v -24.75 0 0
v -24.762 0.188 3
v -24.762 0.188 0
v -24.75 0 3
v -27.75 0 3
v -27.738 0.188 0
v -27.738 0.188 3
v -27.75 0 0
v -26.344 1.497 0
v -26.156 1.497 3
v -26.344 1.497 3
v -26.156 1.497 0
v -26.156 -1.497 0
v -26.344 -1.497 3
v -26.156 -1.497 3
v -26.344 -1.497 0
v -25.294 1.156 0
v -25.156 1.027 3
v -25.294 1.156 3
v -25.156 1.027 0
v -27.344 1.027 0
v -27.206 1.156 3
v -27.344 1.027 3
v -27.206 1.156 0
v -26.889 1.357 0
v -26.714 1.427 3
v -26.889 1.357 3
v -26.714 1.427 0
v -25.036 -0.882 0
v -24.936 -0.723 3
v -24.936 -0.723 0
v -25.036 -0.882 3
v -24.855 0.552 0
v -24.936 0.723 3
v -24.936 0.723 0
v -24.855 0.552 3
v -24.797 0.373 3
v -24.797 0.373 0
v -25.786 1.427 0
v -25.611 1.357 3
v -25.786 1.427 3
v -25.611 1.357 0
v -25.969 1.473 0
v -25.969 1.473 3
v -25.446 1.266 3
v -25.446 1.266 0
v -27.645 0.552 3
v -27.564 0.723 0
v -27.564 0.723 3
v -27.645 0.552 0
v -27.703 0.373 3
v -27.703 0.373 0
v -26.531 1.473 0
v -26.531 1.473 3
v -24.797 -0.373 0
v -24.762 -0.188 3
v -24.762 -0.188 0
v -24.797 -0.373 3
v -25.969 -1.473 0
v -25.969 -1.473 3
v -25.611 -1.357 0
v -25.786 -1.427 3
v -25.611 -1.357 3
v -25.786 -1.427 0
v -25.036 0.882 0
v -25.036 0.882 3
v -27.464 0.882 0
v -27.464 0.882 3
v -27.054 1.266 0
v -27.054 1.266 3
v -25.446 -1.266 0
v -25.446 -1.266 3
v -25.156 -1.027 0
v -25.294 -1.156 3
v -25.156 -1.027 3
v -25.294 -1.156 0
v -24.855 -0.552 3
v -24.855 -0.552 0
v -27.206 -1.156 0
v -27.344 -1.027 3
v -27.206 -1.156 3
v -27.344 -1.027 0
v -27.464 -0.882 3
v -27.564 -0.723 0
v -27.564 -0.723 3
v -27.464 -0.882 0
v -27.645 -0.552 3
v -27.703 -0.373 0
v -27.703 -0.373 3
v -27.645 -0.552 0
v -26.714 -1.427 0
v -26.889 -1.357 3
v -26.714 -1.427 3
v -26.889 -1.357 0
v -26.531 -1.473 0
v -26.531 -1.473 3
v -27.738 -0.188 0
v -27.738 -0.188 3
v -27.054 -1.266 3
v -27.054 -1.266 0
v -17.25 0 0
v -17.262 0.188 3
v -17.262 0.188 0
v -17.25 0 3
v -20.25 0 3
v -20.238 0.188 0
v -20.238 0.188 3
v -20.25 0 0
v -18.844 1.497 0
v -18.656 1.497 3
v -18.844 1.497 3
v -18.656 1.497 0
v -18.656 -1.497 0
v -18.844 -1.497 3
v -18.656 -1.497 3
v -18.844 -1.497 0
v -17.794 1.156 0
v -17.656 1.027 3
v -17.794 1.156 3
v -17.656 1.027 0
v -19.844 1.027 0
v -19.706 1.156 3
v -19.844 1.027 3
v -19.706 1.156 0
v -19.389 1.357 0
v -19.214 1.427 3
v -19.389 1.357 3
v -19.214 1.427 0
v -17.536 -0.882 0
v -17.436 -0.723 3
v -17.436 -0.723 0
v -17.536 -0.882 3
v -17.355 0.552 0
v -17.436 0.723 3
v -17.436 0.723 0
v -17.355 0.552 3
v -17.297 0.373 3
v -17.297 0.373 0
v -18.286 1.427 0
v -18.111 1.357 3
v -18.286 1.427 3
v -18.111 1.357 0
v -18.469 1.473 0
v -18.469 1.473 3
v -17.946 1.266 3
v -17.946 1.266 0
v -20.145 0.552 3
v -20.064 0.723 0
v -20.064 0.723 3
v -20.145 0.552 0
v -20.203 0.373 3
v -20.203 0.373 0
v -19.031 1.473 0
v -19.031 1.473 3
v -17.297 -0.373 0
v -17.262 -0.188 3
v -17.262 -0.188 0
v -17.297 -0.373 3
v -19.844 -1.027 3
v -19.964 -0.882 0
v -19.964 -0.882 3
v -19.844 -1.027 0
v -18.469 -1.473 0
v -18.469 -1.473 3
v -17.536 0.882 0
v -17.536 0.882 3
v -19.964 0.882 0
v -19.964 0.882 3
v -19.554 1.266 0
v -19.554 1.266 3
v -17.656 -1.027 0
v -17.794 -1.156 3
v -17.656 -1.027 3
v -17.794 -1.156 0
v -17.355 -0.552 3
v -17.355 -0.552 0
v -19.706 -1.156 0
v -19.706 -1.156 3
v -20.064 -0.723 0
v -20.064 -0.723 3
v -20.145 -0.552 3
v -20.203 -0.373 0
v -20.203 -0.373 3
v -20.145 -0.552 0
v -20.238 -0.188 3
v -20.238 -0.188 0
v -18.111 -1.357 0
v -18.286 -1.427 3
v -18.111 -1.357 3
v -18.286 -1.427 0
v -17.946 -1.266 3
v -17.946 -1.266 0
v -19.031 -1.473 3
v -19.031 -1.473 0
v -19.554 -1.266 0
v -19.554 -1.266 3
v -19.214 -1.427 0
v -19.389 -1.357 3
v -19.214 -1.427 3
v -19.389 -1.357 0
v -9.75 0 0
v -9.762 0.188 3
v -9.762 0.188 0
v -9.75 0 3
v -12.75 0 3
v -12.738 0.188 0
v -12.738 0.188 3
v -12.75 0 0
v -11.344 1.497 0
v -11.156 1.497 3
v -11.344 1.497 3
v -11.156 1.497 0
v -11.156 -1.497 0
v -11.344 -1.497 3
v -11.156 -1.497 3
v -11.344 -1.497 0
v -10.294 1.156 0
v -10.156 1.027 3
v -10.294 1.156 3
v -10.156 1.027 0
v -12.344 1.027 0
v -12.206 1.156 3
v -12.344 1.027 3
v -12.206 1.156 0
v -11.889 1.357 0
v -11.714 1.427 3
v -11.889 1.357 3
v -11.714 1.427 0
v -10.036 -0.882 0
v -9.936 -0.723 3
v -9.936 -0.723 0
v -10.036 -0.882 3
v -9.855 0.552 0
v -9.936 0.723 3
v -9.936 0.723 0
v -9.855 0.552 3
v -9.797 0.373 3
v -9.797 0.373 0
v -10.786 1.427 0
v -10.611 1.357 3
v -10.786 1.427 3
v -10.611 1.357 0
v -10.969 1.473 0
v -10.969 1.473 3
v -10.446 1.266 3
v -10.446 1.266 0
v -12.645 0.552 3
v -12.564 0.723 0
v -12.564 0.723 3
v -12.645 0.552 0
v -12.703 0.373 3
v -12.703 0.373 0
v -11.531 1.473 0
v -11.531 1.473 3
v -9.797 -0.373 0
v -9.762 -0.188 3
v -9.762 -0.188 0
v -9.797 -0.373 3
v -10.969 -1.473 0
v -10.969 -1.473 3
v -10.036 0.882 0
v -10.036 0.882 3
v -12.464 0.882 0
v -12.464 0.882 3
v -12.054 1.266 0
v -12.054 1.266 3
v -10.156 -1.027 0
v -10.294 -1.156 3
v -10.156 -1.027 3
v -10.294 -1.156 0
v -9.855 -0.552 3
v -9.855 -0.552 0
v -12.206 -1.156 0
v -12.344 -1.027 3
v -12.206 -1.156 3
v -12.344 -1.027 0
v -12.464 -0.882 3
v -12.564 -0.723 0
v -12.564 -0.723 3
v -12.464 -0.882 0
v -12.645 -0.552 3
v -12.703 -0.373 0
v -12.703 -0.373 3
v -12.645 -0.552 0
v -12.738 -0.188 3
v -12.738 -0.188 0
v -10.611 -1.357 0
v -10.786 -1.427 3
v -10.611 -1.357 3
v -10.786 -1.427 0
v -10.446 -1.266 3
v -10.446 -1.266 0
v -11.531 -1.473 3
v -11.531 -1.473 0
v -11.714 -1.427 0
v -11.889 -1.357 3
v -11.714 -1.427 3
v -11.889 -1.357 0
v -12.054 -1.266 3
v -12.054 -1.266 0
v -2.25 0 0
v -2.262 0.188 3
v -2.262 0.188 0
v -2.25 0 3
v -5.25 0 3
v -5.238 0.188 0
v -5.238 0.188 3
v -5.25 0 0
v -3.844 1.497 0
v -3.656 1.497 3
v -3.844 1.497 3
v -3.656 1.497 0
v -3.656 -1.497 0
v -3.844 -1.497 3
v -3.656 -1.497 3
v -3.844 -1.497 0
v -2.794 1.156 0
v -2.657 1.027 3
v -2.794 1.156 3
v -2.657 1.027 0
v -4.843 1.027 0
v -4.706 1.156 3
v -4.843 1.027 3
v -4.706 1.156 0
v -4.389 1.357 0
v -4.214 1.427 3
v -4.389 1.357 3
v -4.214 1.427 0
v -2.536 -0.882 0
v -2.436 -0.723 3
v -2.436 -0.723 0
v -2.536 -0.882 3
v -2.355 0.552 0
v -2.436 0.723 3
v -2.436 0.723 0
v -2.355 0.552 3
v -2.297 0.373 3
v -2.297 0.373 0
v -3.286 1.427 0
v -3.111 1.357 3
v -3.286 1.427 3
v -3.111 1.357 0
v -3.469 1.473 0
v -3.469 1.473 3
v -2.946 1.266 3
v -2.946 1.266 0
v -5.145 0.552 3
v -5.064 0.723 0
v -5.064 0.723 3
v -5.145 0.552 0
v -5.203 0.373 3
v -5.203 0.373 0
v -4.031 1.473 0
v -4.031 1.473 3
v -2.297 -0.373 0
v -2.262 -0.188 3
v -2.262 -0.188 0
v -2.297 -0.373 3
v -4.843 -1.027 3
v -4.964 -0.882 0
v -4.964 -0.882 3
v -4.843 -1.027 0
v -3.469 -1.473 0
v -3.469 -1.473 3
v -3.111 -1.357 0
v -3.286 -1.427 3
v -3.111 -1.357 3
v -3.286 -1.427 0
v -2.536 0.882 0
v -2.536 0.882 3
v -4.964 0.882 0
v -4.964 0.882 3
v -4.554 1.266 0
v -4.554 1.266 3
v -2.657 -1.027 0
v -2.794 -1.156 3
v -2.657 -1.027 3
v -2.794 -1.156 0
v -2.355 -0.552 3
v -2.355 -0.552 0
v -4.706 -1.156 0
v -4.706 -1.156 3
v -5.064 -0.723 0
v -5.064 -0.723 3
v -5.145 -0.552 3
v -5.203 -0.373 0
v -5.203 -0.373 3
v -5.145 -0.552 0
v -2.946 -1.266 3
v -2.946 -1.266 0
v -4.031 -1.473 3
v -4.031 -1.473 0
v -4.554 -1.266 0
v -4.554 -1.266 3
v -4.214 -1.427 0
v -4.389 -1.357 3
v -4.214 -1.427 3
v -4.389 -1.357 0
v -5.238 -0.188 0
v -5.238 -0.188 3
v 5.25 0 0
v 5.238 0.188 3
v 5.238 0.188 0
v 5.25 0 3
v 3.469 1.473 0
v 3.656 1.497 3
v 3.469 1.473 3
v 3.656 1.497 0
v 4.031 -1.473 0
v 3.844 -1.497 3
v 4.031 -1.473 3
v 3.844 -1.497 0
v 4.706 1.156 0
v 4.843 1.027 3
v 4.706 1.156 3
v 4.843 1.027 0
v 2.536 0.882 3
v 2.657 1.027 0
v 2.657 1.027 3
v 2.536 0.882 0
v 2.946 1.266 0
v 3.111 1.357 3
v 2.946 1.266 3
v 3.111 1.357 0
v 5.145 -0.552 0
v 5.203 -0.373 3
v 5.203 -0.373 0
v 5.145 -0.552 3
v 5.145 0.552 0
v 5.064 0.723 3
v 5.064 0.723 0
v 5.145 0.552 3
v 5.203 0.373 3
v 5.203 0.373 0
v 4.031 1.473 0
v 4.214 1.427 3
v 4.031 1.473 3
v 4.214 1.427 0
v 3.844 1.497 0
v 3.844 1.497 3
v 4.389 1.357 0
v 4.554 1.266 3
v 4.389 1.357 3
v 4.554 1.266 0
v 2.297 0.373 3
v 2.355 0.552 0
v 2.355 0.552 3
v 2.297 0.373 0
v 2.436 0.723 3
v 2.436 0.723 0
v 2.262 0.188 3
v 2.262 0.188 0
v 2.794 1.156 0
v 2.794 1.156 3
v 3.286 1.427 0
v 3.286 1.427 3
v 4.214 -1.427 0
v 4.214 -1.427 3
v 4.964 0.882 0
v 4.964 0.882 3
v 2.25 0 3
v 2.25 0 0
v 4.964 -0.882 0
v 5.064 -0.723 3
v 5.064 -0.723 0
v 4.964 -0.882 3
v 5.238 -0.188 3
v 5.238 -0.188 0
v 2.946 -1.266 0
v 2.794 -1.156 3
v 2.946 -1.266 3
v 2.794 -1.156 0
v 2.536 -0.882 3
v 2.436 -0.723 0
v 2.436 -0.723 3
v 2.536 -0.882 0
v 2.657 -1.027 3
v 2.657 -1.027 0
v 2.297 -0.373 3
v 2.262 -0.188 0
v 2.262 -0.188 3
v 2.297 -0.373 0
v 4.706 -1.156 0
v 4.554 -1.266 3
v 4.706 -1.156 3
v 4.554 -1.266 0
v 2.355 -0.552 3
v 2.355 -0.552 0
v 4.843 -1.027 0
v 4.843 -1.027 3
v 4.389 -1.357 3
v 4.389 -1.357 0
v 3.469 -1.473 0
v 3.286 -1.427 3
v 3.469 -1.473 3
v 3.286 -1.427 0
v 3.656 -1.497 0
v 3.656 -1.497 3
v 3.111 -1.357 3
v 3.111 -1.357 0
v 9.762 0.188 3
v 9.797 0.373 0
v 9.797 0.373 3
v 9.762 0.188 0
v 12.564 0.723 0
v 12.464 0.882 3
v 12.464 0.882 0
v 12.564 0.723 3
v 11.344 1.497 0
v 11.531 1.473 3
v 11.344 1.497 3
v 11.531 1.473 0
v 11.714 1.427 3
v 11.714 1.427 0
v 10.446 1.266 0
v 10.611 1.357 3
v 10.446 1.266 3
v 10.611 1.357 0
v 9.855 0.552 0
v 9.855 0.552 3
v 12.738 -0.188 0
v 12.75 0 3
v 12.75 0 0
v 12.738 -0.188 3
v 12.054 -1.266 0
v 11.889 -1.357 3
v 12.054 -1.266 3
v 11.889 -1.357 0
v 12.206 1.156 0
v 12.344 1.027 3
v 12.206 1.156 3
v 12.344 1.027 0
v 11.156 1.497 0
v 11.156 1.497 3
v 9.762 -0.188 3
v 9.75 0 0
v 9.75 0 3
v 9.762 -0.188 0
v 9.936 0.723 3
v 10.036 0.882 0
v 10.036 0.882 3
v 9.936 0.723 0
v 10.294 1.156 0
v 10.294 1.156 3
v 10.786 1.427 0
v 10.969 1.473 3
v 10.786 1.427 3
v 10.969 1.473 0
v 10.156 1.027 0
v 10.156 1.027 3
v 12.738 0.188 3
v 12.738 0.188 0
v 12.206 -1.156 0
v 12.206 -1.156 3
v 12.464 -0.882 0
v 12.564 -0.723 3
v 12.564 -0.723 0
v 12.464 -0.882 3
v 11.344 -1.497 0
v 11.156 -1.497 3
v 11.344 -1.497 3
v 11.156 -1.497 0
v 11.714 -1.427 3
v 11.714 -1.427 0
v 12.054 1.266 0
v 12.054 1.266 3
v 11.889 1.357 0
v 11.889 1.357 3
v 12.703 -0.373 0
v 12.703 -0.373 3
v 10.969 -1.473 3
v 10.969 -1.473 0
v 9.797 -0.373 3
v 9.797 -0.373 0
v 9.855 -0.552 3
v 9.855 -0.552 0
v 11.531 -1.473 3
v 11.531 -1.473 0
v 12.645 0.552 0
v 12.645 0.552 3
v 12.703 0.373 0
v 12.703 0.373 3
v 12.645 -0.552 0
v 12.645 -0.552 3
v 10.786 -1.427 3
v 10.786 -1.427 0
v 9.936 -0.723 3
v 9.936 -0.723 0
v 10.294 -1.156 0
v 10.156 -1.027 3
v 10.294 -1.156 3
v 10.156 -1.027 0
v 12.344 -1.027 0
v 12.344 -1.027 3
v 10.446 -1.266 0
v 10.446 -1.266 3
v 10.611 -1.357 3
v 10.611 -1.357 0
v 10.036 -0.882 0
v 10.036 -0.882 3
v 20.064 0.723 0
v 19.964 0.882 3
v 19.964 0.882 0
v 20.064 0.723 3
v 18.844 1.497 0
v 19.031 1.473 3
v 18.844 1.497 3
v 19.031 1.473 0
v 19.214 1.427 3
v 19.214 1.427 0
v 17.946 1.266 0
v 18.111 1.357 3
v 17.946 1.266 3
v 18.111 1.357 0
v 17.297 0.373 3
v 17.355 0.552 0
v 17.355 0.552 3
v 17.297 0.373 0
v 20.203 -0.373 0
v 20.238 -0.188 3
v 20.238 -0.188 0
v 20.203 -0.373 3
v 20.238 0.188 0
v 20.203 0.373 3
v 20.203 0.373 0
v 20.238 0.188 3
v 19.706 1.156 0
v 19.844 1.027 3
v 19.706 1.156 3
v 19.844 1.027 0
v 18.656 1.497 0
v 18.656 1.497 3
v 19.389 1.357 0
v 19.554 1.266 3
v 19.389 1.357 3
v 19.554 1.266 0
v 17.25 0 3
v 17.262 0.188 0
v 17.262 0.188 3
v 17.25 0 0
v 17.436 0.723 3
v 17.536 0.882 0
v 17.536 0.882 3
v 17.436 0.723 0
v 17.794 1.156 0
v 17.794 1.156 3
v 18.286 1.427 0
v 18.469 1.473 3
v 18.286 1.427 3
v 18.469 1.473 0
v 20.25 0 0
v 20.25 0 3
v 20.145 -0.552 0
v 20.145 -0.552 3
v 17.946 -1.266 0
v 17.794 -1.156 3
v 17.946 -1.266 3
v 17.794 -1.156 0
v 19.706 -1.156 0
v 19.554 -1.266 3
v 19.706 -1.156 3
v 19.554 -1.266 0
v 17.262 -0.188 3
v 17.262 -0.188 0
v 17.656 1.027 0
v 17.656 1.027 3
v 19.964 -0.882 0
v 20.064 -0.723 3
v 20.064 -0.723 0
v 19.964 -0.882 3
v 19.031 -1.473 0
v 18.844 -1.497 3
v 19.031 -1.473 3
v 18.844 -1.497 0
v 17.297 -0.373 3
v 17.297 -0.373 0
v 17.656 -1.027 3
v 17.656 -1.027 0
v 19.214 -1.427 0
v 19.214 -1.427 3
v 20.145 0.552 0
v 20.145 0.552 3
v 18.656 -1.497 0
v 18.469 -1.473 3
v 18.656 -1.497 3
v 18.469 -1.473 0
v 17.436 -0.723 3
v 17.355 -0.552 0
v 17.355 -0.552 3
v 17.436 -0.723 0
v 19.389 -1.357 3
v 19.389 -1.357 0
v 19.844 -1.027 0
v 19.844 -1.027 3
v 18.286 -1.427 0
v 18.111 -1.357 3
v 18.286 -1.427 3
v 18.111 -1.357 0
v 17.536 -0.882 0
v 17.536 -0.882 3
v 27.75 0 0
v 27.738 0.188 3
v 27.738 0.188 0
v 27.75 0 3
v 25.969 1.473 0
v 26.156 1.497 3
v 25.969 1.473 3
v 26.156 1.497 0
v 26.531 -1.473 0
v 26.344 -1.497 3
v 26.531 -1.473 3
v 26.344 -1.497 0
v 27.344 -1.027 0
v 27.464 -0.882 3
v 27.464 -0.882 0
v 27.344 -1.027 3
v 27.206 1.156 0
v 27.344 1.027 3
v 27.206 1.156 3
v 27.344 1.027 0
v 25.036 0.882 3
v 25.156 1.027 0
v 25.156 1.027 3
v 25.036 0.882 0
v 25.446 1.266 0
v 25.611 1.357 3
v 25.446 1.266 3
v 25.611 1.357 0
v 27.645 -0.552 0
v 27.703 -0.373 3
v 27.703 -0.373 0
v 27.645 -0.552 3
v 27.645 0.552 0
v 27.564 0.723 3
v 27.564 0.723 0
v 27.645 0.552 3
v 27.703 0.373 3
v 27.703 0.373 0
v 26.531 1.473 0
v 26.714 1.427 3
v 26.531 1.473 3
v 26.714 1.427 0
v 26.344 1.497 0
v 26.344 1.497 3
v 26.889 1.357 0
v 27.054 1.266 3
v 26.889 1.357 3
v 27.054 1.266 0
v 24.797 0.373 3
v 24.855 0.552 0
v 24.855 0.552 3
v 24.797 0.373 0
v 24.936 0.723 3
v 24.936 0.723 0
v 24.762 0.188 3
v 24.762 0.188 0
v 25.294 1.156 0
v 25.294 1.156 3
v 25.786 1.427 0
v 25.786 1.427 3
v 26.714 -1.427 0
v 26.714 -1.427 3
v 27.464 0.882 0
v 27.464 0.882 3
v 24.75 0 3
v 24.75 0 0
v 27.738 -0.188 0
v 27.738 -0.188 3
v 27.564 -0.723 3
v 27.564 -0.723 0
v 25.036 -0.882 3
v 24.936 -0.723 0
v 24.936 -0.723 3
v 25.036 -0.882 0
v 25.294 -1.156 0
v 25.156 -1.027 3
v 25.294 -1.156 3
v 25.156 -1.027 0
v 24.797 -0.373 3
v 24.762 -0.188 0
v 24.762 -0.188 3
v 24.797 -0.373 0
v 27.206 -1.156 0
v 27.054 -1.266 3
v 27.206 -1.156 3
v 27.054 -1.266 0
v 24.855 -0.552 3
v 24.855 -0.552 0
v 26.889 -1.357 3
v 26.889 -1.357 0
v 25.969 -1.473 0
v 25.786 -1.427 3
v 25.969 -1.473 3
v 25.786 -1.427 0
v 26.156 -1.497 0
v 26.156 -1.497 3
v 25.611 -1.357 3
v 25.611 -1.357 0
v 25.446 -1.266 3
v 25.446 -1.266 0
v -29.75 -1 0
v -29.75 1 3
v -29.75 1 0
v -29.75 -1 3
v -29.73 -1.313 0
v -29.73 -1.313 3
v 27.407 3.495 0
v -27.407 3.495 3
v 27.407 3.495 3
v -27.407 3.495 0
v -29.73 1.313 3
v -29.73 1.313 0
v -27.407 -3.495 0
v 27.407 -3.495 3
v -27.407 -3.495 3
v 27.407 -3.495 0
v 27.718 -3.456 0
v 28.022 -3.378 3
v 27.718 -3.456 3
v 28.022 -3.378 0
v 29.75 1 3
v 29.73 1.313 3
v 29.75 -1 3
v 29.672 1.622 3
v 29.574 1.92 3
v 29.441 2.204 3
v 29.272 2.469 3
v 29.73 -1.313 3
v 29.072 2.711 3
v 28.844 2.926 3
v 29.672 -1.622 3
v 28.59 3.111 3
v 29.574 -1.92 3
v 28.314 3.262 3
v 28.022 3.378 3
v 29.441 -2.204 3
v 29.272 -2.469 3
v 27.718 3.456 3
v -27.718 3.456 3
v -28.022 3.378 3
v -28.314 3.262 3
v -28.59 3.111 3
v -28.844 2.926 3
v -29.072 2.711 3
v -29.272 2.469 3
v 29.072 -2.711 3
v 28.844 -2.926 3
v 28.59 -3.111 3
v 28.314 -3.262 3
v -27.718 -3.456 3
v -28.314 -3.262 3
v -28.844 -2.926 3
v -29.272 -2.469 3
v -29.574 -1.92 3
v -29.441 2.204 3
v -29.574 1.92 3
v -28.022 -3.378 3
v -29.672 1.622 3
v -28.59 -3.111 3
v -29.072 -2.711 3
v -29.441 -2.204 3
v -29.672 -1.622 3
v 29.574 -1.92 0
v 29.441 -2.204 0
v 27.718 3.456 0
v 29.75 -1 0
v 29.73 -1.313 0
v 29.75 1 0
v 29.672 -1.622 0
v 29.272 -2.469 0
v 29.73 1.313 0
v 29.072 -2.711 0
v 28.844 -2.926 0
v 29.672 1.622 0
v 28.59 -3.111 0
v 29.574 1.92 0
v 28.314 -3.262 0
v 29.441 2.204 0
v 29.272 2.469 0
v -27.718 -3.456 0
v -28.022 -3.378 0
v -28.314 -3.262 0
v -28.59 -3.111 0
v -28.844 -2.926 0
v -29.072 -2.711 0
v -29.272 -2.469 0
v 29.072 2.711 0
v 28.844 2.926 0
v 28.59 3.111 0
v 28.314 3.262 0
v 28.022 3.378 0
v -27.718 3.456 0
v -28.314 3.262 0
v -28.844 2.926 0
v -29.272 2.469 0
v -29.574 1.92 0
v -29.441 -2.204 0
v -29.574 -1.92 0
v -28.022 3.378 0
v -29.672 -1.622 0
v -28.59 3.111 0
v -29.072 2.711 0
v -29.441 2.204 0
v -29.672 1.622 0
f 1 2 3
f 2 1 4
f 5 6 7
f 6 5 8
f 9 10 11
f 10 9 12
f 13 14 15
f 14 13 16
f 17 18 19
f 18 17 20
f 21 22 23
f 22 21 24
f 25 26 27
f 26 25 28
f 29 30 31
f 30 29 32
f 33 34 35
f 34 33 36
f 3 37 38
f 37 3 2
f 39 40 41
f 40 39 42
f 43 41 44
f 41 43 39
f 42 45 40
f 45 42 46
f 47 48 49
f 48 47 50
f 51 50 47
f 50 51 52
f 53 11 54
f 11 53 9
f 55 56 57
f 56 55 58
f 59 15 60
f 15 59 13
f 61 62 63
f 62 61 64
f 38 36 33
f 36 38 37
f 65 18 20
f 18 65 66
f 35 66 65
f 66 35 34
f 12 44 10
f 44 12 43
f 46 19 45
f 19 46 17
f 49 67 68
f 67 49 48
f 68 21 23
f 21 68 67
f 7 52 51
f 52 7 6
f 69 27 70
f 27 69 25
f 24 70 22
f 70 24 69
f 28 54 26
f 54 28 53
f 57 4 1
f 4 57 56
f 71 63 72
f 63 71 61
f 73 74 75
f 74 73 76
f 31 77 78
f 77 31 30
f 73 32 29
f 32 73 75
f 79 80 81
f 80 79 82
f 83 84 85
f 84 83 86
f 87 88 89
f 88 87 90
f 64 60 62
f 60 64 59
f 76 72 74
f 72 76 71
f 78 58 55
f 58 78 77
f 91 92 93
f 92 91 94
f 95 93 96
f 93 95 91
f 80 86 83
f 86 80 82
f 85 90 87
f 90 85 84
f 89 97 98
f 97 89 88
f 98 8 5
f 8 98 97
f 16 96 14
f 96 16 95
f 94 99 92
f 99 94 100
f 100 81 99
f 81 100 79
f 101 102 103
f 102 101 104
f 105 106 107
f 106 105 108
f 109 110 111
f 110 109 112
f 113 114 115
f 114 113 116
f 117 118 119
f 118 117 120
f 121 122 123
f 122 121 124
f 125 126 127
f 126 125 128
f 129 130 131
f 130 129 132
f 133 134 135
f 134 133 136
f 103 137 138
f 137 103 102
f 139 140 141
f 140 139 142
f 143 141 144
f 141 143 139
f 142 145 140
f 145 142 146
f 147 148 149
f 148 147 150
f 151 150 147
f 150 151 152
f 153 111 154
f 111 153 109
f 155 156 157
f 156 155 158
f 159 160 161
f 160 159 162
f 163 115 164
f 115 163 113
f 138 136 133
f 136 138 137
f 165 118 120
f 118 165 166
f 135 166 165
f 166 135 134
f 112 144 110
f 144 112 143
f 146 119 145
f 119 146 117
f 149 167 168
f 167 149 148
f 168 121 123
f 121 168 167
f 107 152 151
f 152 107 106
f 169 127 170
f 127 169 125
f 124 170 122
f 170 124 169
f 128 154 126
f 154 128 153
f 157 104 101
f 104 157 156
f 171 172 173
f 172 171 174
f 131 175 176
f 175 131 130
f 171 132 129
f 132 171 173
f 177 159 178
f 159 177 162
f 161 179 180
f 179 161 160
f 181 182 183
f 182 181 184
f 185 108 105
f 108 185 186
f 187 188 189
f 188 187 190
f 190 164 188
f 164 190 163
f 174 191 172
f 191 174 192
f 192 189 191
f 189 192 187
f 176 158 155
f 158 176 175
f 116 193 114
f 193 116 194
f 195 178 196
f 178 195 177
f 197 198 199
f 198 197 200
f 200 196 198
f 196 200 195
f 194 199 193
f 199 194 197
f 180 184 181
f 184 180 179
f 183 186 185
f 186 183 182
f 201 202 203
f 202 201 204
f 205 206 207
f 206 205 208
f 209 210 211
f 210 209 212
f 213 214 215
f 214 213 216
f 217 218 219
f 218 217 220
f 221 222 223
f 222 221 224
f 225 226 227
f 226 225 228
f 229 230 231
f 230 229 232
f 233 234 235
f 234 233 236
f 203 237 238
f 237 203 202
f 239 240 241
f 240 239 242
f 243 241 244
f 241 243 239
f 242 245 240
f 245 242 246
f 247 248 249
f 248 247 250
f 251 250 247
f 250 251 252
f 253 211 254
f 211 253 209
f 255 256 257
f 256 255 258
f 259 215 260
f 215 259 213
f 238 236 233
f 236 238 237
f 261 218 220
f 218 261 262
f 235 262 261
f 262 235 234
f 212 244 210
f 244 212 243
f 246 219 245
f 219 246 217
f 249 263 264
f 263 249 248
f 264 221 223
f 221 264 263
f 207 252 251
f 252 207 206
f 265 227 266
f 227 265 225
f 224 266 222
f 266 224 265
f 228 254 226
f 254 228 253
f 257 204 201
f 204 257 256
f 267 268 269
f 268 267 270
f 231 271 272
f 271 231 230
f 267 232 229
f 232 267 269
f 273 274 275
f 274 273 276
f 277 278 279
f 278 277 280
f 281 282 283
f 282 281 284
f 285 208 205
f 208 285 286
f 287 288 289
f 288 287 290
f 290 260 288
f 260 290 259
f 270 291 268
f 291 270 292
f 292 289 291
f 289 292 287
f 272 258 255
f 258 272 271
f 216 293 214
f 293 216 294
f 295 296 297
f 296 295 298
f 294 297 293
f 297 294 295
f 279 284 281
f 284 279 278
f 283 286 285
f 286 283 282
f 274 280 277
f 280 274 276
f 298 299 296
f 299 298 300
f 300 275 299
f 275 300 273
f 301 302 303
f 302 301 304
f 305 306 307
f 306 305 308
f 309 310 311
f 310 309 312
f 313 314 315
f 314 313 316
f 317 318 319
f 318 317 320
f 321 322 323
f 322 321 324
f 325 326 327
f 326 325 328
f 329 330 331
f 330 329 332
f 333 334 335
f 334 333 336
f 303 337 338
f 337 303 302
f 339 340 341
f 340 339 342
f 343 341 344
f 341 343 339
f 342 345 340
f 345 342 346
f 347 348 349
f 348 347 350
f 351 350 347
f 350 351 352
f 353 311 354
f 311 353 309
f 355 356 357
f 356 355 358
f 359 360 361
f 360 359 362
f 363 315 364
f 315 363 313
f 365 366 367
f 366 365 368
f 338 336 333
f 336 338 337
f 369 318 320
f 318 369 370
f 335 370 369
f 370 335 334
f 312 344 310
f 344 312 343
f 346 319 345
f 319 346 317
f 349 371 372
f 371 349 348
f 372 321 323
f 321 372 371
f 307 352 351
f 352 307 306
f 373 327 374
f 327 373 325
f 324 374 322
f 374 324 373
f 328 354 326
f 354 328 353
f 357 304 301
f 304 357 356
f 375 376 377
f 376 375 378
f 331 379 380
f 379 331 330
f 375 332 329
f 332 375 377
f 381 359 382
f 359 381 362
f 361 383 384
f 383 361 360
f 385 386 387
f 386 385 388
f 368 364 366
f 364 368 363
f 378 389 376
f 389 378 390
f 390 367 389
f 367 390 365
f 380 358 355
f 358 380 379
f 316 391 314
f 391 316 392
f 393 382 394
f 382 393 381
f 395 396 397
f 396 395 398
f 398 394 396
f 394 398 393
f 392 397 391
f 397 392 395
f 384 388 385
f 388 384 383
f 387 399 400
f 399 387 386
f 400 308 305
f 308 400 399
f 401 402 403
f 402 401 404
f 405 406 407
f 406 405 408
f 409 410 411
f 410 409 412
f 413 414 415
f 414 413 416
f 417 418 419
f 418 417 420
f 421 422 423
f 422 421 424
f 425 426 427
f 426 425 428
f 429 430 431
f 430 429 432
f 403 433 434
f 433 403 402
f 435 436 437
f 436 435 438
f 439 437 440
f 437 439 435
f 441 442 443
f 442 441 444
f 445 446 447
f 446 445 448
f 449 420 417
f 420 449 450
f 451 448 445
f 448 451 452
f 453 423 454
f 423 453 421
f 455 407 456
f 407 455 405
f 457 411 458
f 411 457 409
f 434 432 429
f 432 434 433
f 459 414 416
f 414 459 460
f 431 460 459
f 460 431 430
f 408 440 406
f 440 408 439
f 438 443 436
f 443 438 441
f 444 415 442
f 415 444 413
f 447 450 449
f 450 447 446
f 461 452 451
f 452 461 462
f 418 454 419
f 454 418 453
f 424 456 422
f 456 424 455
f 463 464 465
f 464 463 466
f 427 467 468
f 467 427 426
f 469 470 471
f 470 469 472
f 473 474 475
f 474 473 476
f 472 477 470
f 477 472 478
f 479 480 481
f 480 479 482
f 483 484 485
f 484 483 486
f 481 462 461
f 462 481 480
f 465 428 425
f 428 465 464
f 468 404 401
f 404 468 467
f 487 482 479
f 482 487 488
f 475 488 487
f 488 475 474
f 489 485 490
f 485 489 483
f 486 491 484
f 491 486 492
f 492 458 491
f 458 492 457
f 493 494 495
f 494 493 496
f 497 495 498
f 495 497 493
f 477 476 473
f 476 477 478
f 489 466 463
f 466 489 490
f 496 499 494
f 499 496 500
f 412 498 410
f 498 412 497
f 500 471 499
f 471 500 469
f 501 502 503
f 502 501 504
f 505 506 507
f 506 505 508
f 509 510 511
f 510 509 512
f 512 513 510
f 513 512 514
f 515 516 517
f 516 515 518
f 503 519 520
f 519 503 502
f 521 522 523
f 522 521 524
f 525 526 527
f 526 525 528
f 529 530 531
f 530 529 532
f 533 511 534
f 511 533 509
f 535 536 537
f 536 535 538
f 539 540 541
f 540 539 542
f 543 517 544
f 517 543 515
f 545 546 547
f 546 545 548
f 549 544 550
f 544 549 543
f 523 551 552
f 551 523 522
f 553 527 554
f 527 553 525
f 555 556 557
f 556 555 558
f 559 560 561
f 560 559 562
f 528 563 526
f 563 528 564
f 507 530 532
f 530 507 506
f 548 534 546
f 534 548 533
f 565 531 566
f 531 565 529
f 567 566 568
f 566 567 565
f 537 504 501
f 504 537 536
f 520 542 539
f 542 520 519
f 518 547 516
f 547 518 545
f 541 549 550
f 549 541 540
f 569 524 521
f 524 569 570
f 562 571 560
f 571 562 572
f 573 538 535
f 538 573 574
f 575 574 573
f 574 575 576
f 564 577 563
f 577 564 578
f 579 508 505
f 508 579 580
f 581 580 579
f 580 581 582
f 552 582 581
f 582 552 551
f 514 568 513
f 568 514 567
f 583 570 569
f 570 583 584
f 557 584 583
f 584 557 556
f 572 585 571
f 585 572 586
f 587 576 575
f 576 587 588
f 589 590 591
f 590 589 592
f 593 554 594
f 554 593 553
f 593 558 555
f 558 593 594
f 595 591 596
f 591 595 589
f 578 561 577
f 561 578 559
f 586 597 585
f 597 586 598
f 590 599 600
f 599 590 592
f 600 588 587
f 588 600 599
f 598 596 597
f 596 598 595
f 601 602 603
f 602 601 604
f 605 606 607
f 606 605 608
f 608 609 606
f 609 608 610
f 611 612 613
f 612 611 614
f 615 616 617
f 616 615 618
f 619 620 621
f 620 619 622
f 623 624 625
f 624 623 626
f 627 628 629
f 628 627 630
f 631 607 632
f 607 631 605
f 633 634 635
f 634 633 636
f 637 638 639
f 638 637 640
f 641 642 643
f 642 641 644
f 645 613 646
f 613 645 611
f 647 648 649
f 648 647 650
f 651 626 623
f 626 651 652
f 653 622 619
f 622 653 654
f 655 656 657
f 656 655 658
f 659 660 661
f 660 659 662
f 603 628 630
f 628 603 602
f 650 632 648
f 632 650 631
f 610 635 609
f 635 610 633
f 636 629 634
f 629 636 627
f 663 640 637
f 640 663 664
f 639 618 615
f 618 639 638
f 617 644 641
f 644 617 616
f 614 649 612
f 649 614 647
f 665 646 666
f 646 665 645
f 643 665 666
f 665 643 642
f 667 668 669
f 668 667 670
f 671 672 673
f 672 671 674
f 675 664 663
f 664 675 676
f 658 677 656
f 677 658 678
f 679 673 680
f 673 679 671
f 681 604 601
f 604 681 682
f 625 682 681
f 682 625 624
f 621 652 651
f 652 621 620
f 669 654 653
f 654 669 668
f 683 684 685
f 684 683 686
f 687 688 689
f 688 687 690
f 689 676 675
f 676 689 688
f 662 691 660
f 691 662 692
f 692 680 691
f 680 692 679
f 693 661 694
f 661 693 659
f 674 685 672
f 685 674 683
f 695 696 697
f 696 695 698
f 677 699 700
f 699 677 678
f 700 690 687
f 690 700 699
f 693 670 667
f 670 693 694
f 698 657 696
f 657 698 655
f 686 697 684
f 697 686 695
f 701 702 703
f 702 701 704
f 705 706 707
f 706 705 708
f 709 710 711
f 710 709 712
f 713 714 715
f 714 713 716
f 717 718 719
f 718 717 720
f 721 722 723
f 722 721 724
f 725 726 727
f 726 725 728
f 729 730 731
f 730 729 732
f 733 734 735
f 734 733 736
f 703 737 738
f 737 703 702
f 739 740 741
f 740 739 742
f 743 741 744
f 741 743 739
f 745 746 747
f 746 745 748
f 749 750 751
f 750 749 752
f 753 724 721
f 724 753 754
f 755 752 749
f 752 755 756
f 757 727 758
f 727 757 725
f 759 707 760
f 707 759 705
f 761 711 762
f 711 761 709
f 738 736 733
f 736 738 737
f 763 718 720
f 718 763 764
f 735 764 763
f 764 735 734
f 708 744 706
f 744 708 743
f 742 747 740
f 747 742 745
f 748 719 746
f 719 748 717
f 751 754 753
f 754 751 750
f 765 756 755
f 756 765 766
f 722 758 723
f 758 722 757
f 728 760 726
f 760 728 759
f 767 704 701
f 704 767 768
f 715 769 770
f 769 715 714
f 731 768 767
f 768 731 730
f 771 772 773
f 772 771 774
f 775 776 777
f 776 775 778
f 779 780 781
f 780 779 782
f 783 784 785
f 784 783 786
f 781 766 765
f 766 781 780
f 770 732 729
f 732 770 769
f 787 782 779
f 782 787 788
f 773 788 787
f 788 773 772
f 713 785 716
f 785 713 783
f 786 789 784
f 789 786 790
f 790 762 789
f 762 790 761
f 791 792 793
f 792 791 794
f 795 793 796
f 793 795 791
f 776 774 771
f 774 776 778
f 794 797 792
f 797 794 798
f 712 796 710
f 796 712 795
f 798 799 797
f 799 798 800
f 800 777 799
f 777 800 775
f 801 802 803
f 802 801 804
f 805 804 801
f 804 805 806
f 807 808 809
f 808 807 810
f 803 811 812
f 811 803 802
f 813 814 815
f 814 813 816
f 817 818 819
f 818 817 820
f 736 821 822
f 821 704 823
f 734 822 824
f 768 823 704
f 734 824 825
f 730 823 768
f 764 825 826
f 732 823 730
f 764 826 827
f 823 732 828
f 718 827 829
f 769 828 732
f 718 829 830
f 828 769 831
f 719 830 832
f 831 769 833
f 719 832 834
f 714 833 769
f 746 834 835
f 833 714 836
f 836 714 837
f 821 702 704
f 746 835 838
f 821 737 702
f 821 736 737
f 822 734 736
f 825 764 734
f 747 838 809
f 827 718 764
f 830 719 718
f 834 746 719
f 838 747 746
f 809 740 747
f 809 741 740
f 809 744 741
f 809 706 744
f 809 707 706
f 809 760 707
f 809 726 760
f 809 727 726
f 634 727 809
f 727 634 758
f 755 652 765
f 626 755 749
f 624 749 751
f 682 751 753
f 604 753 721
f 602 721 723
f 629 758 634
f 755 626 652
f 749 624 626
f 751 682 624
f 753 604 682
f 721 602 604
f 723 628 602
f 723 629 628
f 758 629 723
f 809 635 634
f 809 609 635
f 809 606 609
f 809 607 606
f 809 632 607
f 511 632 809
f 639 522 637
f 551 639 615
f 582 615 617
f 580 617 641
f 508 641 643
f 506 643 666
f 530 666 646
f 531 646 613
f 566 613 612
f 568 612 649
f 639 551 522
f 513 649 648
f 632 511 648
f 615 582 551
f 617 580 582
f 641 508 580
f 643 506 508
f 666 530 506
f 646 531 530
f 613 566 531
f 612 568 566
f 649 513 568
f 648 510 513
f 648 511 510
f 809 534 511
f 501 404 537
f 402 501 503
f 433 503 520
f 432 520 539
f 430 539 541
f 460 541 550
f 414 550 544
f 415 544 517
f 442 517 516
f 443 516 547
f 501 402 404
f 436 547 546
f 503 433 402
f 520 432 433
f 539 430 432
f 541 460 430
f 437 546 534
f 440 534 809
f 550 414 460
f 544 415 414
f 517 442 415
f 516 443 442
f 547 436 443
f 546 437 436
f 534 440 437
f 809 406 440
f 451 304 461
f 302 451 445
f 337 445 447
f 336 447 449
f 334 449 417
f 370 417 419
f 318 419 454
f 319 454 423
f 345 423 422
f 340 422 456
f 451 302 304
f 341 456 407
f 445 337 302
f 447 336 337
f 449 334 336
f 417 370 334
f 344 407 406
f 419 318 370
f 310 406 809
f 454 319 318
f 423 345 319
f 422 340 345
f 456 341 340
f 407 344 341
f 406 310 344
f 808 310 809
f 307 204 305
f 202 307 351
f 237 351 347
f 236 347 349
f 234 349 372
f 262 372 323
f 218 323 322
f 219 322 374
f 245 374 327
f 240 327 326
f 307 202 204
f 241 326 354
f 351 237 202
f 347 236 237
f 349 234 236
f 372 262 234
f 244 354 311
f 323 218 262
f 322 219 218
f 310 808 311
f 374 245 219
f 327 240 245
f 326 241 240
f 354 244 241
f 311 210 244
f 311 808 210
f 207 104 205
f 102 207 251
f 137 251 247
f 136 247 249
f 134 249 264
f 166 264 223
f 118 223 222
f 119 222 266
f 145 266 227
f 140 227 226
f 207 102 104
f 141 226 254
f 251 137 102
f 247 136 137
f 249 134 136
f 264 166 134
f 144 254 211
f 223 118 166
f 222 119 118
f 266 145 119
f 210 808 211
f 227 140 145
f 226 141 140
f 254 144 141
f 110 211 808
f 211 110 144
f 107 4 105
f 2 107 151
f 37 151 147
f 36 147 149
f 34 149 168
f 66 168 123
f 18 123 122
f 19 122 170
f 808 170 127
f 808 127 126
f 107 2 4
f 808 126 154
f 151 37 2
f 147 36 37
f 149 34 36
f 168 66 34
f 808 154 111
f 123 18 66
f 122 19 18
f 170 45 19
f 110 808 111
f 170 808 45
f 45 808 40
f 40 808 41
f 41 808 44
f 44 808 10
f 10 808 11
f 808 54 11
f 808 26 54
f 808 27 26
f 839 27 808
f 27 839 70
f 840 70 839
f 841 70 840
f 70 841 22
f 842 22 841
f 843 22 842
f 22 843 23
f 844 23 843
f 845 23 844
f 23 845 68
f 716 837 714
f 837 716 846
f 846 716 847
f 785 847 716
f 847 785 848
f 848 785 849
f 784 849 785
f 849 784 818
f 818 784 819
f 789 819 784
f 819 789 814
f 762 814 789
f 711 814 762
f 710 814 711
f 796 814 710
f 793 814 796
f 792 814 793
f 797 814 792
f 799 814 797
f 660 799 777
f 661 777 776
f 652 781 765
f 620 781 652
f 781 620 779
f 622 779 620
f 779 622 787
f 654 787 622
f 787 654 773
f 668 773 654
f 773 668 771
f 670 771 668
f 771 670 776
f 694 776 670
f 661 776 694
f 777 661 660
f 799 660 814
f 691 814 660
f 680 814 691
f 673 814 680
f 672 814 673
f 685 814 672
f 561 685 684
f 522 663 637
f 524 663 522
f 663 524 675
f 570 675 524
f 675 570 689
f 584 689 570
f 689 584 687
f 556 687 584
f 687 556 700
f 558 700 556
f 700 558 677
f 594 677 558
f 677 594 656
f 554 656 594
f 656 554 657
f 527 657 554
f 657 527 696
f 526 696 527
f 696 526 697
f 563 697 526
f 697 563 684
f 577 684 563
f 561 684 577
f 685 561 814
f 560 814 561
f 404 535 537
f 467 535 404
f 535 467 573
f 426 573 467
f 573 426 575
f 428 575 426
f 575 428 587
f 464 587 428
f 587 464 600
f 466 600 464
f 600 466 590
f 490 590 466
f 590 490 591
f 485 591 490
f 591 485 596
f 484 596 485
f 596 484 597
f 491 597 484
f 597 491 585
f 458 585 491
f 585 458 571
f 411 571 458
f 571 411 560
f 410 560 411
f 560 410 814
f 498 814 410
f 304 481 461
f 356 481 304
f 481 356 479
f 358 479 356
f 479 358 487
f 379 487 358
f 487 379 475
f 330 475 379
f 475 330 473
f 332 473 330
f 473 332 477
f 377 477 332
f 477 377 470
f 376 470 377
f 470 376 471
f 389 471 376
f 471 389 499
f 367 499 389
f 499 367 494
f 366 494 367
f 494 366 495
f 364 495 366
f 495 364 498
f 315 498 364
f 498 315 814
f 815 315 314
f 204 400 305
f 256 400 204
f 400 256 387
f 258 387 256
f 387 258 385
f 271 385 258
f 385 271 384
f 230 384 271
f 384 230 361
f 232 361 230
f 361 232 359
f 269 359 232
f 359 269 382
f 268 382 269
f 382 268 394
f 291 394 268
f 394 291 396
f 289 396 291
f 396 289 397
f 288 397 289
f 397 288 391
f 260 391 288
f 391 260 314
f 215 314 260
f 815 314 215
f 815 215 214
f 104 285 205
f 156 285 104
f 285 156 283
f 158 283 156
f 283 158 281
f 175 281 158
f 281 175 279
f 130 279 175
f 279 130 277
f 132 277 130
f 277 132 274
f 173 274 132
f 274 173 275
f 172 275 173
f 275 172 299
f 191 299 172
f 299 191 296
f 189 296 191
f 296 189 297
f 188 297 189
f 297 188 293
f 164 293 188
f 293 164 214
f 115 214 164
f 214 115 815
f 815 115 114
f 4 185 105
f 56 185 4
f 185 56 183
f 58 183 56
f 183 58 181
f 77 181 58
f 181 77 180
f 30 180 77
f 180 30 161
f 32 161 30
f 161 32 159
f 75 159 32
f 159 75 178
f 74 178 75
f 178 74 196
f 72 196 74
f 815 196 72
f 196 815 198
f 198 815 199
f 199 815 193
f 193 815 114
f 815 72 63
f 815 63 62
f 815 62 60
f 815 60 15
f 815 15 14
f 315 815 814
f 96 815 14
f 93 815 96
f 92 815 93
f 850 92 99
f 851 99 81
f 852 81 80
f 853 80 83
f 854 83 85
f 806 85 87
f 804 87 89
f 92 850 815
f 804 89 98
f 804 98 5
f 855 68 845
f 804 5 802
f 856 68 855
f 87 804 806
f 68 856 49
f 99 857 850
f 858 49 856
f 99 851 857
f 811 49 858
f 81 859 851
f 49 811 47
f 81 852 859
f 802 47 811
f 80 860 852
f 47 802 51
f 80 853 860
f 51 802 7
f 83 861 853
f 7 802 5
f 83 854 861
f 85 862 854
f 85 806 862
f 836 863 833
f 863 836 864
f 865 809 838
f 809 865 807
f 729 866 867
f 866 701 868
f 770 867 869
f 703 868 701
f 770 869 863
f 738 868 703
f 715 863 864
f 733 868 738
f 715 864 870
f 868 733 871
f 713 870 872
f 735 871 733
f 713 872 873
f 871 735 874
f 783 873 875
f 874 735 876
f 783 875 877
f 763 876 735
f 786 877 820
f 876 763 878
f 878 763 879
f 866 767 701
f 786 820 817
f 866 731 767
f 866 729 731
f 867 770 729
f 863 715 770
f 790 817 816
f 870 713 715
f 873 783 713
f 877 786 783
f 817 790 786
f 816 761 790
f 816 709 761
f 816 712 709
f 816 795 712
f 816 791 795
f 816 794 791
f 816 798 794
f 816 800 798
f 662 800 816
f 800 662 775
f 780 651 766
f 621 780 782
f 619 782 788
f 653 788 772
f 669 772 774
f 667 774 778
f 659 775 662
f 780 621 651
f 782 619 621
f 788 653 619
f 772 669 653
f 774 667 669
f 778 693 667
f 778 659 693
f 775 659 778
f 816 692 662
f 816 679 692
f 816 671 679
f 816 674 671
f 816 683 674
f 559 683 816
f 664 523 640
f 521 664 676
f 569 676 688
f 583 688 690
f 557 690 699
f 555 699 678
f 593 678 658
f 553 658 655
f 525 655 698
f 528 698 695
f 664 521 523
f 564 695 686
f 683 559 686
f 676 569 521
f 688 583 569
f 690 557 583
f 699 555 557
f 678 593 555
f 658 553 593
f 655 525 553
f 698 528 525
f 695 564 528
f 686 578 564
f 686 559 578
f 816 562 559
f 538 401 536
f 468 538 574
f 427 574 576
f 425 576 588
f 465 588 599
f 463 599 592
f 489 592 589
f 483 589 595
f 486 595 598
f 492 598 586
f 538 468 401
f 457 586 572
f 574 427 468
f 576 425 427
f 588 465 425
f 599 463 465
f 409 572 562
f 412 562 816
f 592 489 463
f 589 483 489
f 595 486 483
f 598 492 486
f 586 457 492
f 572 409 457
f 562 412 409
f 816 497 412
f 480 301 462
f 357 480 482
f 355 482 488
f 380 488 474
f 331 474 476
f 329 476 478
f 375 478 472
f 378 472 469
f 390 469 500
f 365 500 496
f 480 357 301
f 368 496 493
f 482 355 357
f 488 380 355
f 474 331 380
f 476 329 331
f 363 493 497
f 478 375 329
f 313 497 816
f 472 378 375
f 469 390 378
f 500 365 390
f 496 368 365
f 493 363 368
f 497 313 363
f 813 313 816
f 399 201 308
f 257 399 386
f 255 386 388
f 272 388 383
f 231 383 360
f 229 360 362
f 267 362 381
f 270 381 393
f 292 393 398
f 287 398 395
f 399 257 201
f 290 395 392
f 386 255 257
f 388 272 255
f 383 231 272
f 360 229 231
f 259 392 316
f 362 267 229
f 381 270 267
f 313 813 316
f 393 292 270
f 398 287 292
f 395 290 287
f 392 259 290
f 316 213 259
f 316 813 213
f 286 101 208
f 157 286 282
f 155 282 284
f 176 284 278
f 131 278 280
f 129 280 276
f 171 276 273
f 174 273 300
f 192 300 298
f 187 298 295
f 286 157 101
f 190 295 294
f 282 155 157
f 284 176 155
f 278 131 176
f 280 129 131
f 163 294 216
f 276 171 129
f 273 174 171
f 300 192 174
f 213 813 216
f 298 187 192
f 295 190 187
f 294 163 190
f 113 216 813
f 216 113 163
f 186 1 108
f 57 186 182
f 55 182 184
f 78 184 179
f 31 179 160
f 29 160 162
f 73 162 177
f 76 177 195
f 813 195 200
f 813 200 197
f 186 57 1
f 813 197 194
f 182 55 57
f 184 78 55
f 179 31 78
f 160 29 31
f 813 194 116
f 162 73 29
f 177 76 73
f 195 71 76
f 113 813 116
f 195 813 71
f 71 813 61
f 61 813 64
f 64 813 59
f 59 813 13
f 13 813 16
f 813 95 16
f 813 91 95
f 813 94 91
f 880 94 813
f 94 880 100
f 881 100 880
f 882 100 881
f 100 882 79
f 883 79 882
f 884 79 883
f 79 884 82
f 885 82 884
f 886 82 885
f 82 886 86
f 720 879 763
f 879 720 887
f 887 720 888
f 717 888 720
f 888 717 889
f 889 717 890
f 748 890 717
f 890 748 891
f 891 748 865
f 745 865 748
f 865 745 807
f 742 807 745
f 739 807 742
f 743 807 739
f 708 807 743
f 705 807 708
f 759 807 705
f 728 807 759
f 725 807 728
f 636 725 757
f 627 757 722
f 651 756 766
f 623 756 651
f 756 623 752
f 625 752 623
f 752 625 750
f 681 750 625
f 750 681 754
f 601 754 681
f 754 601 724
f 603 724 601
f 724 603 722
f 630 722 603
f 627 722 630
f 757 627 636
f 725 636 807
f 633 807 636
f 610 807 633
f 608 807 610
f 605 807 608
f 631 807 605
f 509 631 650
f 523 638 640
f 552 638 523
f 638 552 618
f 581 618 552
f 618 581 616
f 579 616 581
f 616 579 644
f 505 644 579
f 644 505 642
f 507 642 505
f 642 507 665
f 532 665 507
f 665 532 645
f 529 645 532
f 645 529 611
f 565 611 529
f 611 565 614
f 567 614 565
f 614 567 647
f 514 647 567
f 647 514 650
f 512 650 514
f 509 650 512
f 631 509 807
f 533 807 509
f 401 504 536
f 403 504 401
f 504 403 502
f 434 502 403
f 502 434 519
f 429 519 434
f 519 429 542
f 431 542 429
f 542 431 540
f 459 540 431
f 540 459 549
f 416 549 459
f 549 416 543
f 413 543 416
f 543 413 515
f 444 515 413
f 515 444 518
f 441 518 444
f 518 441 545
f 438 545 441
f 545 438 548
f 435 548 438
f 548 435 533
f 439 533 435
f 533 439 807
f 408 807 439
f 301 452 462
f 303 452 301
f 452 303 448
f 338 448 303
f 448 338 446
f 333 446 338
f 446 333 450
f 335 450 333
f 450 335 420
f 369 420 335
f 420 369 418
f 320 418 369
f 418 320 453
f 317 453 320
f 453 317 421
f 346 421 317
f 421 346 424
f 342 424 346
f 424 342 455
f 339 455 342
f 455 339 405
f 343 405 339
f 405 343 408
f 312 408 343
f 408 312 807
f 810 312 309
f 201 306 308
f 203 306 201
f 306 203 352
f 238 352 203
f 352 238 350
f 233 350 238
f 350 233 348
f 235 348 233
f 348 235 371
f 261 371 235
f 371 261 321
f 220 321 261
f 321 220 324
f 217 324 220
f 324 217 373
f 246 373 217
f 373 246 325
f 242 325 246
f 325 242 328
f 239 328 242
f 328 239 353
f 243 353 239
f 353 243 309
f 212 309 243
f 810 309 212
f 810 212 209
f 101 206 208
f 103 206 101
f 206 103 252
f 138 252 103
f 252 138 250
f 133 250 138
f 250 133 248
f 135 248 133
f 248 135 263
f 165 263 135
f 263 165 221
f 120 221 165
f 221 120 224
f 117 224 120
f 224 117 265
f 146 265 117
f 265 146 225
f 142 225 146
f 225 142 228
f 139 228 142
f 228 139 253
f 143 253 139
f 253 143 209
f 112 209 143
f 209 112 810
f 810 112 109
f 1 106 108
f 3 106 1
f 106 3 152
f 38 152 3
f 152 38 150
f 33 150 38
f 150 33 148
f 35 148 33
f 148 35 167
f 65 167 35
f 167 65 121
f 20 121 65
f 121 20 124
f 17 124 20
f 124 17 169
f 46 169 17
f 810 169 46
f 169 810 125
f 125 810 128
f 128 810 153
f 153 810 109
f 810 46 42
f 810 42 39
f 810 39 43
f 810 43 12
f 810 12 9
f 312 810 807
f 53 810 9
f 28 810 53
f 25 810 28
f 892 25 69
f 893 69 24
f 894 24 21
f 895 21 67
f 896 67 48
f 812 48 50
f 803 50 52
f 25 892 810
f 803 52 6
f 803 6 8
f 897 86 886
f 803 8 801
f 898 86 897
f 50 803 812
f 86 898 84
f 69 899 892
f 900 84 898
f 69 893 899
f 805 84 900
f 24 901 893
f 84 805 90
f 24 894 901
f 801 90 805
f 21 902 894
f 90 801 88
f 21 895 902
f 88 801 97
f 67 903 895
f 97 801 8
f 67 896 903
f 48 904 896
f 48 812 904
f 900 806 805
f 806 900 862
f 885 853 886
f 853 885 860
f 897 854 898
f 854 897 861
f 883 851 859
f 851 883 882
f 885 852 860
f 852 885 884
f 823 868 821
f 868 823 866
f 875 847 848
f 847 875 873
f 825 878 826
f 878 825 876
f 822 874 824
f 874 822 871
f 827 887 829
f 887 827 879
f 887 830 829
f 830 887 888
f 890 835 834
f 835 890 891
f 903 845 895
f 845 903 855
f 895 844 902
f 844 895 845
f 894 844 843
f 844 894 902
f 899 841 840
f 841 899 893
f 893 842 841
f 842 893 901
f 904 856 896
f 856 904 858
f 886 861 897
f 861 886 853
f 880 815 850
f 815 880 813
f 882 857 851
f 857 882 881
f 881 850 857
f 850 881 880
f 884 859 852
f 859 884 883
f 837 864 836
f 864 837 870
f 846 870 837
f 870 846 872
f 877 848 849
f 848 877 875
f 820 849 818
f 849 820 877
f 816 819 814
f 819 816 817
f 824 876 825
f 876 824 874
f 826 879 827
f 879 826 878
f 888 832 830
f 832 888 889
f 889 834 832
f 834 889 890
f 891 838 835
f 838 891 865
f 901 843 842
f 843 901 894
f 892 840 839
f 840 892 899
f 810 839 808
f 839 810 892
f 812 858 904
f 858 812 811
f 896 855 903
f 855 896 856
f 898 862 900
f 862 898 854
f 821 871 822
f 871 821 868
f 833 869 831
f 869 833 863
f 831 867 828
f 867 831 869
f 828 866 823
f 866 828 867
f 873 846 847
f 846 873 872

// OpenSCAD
$fn = 50;


difference() {
	union() {
		translate(v = [0, 0, 0]) {
			rotate(a = [0, 0, 0]) {
				hull() {
					translate(v = [-27.2500000000, 1.0000000000, 0]) {
						rotate(a = [0, 0, 0]) {
							translate(v = [0, 0, 0]) {
								rotate(a = [0, 0, 0]) {
									cylinder(h = 3, r = 2.5000000000);
								}
							}
						}
					}
					translate(v = [27.2500000000, 1.0000000000, 0]) {
						rotate(a = [0, 0, 0]) {
							translate(v = [0, 0, 0]) {
								rotate(a = [0, 0, 0]) {
									cylinder(h = 3, r = 2.5000000000);
								}
							}
						}
					}
					translate(v = [-27.2500000000, -1.0000000000, 0]) {
						rotate(a = [0, 0, 0]) {
							translate(v = [0, 0, 0]) {
								rotate(a = [0, 0, 0]) {
									cylinder(h = 3, r = 2.5000000000);
								}
							}
						}
					}
					translate(v = [27.2500000000, -1.0000000000, 0]) {
						rotate(a = [0, 0, 0]) {
							translate(v = [0, 0, 0]) {
								rotate(a = [0, 0, 0]) {
									cylinder(h = 3, r = 2.5000000000);
								}
							}
						}
					}
				}
			}
		}
	}
	union() {
		translate(v = [-26.2500000000, 0.0000000000, 0]) {
			rotate(a = [0, 0, 0]) {
				translate(v = [0, 0, -50]) {
					rotate(a = [0, 0, 0]) {
						cylinder(h = 100, r = 1.5000000000);
					}
				}
			}
		}
		translate(v = [-18.7500000000, 0.0000000000, 0]) {
			rotate(a = [0, 0, 0]) {
				translate(v = [0, 0, -50]) {
					rotate(a = [0, 0, 0]) {
						cylinder(h = 100, r = 1.5000000000);
					}
				}
			}
		}
		translate(v = [-11.2500000000, 0.0000000000, 0]) {
			rotate(a = [0, 0, 0]) {
				translate(v = [0, 0, -50]) {
					rotate(a = [0, 0, 0]) {
						cylinder(h = 100, r = 1.5000000000);
					}
				}
			}
		}
		translate(v = [-3.7500000000, 0.0000000000, 0]) {
			rotate(a = [0, 0, 0]) {
				translate(v = [0, 0, -50]) {
					rotate(a = [0, 0, 0]) {
						cylinder(h = 100, r = 1.5000000000);
					}
				}
			}
		}
		translate(v = [3.7500000000, 0.0000000000, 0]) {
			rotate(a = [0, 0, 0]) {
				translate(v = [0, 0, -50]) {
					rotate(a = [0, 0, 0]) {
						cylinder(h = 100, r = 1.5000000000);
					}
				}
			}
		}
		translate(v = [11.2500000000, 0.0000000000, 0]) {
			rotate(a = [0, 0, 0]) {
				translate(v = [0, 0, -50]) {
					rotate(a = [0, 0, 0]) {
						cylinder(h = 100, r = 1.5000000000);
					}
				}
			}
		}
		translate(v = [18.7500000000, 0.0000000000, 0]) {
			rotate(a = [0, 0, 0]) {
				translate(v = [0, 0, -50]) {
					rotate(a = [0, 0, 0]) {
						cylinder(h = 100, r = 1.5000000000);
					}
				}
			}
		}
		translate(v = [26.2500000000, 0.0000000000, 0]) {
			rotate(a = [0, 0, 0]) {
				translate(v = [0, 0, -50]) {
					rotate(a = [0, 0, 0]) {
						cylinder(h = 100, r = 1.5000000000);
					}
				}
			}
		}
	}
}
